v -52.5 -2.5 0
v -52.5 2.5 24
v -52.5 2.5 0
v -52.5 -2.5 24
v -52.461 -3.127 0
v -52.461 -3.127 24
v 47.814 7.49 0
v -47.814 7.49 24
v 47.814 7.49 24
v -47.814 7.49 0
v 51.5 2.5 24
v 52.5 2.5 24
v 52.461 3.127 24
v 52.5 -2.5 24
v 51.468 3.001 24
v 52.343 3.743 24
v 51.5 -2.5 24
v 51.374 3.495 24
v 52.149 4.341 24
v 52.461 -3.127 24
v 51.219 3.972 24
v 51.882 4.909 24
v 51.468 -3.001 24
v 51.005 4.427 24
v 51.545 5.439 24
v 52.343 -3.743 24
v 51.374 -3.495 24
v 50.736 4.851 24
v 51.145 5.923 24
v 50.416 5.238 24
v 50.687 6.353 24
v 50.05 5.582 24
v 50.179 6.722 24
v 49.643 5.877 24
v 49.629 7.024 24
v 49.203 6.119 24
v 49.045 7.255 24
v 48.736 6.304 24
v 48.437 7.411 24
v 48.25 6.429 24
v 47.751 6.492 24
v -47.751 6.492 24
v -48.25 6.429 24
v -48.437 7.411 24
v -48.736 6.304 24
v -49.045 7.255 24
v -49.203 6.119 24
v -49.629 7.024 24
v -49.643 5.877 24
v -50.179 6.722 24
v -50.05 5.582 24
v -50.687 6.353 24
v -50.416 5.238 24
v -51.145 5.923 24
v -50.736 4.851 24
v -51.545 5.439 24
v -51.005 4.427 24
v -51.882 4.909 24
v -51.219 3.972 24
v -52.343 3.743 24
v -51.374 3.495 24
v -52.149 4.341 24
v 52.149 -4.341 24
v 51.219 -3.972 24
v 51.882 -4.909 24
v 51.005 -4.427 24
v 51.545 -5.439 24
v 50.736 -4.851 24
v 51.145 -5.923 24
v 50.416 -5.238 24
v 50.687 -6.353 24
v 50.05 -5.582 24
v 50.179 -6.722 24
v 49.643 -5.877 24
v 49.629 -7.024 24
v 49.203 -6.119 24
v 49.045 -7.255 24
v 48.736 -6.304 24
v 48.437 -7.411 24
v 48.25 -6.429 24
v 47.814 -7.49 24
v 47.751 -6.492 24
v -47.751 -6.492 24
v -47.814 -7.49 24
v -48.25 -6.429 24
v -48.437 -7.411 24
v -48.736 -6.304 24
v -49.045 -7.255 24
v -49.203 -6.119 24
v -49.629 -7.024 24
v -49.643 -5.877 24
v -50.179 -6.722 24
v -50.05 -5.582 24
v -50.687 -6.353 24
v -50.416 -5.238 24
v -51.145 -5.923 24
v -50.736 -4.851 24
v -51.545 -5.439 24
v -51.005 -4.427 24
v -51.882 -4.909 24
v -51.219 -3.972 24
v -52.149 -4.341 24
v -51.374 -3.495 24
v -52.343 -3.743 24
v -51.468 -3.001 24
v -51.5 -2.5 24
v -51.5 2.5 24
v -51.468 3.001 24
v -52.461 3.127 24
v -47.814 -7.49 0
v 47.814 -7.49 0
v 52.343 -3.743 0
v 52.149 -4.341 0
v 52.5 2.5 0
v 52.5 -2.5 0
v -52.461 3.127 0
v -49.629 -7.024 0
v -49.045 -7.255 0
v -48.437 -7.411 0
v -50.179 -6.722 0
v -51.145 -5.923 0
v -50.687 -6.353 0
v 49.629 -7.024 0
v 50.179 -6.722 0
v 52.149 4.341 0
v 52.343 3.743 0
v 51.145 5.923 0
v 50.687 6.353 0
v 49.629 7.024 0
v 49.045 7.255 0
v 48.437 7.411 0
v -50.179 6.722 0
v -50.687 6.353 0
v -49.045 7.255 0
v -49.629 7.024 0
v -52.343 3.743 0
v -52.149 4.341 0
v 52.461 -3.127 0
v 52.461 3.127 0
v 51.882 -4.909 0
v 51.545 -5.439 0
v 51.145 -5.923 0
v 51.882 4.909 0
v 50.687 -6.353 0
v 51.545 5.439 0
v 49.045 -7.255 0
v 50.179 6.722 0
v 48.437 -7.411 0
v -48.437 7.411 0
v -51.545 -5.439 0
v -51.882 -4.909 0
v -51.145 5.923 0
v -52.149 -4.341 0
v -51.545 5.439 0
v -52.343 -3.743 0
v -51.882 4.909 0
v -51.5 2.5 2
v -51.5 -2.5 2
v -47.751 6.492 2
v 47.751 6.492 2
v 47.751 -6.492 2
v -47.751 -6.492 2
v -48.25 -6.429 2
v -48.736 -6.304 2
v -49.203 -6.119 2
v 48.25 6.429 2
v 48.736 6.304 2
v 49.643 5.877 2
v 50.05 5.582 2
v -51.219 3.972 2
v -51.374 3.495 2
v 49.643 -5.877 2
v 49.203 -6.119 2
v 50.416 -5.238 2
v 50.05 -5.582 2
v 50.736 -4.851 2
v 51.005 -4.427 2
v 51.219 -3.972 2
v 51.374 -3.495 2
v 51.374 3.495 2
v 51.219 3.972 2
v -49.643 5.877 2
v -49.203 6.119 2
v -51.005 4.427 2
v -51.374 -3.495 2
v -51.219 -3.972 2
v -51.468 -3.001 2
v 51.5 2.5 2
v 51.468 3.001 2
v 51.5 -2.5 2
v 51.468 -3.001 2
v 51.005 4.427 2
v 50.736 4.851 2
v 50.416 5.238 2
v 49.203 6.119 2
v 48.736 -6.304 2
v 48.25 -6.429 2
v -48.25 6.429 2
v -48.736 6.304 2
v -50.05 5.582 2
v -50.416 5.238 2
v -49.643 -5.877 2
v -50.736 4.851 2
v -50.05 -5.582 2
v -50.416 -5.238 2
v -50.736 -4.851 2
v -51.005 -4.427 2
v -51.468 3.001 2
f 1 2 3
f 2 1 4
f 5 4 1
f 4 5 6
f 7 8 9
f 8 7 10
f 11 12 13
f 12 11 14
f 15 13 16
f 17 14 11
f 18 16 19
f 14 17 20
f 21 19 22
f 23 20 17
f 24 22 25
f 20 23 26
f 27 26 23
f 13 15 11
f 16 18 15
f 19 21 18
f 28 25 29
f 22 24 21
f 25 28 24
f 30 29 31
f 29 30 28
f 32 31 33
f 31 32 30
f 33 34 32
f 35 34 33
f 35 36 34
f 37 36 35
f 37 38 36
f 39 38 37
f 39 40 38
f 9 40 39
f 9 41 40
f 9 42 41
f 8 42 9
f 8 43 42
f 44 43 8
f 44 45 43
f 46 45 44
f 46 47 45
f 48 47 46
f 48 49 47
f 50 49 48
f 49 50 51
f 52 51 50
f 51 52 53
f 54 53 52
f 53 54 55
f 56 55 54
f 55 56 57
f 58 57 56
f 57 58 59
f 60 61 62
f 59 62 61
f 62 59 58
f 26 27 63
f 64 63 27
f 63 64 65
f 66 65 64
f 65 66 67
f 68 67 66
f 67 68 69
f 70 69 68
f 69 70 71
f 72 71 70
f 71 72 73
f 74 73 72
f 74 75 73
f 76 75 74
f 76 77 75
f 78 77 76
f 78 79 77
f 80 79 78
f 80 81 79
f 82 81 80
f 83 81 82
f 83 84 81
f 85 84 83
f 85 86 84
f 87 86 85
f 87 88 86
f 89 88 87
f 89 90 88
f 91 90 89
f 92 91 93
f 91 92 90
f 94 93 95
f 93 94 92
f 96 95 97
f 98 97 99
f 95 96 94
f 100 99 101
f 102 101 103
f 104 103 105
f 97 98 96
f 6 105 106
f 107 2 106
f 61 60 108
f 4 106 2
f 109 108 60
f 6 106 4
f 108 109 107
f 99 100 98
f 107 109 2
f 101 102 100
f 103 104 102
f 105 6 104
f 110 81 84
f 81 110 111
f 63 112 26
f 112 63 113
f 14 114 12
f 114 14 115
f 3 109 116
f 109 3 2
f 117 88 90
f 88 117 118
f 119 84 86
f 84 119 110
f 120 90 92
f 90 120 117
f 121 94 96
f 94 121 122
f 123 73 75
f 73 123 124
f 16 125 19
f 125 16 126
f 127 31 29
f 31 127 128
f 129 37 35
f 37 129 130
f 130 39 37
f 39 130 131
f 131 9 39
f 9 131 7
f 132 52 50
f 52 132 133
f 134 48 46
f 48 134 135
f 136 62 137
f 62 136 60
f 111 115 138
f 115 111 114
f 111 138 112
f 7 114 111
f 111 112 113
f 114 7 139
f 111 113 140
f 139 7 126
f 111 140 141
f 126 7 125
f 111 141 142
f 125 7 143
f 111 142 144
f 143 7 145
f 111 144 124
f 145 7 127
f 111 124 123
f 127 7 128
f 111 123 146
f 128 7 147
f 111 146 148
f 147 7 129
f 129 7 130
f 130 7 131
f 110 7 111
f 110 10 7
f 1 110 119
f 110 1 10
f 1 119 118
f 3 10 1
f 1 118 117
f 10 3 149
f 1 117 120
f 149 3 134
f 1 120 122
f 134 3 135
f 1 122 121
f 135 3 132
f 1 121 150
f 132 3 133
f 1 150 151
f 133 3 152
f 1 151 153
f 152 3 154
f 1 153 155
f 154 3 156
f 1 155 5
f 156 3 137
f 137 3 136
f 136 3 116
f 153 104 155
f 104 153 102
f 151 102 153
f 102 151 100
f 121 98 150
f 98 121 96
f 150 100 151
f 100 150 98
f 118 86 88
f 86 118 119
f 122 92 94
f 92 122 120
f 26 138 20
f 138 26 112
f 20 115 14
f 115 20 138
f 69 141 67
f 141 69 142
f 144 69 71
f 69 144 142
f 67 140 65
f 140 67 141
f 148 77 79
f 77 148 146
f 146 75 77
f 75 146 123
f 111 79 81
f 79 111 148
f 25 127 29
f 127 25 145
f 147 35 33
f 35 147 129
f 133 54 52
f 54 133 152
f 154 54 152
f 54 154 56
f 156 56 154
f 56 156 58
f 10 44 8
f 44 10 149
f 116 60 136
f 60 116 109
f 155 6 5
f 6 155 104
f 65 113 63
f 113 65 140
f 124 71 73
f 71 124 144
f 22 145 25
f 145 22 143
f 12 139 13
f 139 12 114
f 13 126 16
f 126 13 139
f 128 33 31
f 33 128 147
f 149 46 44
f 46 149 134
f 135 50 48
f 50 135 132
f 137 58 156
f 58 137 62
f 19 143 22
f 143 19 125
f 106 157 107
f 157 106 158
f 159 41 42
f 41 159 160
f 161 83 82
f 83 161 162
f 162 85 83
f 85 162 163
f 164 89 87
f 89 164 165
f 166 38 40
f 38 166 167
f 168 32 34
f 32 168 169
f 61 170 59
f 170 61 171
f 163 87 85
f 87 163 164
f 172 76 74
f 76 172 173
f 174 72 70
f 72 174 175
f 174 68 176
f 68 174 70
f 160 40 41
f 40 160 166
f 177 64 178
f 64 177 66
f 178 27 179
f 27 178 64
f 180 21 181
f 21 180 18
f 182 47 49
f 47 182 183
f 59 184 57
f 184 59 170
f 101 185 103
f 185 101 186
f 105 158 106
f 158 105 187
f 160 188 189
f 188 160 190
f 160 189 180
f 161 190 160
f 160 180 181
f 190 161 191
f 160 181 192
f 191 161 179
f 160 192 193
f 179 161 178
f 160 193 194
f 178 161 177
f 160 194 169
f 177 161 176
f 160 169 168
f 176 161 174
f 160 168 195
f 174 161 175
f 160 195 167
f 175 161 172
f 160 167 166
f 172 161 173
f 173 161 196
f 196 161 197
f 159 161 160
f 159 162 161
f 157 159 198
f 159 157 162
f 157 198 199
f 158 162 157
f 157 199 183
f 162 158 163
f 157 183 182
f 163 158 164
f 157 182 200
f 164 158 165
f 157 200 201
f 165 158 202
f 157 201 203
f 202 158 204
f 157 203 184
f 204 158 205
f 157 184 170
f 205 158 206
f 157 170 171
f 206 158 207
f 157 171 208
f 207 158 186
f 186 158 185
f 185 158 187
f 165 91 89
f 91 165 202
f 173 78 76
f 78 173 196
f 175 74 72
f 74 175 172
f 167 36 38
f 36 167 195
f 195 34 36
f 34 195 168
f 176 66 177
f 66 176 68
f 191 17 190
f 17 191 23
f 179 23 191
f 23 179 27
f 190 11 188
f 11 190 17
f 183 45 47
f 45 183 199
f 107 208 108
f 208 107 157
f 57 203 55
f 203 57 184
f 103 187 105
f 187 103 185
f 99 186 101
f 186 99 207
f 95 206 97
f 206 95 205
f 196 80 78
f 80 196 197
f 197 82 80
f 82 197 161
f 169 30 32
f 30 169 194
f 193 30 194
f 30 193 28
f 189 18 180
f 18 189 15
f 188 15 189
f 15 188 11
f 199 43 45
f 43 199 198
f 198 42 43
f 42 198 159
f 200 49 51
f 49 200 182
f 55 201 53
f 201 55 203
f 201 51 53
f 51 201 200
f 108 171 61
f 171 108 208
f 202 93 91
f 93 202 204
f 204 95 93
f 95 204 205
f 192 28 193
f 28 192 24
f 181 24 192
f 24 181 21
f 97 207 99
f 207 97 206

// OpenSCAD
$fn = 50;


difference() {
	union() {
		hull() {
			translate(v = [-47.5000000000, 2.5000000000, 0]) {
				cylinder(h = 24, r = 5);
			}
			translate(v = [47.5000000000, 2.5000000000, 0]) {
				cylinder(h = 24, r = 5);
			}
			translate(v = [-47.5000000000, -2.5000000000, 0]) {
				cylinder(h = 24, r = 5);
			}
			translate(v = [47.5000000000, -2.5000000000, 0]) {
				cylinder(h = 24, r = 5);
			}
		}
	}
	union() {
		translate(v = [0, 0, 2]) {
			hull() {
				translate(v = [-47.5000000000, 2.5000000000, 0]) {
					cylinder(h = 22, r = 4);
				}
				translate(v = [47.5000000000, 2.5000000000, 0]) {
					cylinder(h = 22, r = 4);
				}
				translate(v = [-47.5000000000, -2.5000000000, 0]) {
					cylinder(h = 22, r = 4);
				}
				translate(v = [47.5000000000, -2.5000000000, 0]) {
					cylinder(h = 22, r = 4);
				}
			}
		}
	}
}
